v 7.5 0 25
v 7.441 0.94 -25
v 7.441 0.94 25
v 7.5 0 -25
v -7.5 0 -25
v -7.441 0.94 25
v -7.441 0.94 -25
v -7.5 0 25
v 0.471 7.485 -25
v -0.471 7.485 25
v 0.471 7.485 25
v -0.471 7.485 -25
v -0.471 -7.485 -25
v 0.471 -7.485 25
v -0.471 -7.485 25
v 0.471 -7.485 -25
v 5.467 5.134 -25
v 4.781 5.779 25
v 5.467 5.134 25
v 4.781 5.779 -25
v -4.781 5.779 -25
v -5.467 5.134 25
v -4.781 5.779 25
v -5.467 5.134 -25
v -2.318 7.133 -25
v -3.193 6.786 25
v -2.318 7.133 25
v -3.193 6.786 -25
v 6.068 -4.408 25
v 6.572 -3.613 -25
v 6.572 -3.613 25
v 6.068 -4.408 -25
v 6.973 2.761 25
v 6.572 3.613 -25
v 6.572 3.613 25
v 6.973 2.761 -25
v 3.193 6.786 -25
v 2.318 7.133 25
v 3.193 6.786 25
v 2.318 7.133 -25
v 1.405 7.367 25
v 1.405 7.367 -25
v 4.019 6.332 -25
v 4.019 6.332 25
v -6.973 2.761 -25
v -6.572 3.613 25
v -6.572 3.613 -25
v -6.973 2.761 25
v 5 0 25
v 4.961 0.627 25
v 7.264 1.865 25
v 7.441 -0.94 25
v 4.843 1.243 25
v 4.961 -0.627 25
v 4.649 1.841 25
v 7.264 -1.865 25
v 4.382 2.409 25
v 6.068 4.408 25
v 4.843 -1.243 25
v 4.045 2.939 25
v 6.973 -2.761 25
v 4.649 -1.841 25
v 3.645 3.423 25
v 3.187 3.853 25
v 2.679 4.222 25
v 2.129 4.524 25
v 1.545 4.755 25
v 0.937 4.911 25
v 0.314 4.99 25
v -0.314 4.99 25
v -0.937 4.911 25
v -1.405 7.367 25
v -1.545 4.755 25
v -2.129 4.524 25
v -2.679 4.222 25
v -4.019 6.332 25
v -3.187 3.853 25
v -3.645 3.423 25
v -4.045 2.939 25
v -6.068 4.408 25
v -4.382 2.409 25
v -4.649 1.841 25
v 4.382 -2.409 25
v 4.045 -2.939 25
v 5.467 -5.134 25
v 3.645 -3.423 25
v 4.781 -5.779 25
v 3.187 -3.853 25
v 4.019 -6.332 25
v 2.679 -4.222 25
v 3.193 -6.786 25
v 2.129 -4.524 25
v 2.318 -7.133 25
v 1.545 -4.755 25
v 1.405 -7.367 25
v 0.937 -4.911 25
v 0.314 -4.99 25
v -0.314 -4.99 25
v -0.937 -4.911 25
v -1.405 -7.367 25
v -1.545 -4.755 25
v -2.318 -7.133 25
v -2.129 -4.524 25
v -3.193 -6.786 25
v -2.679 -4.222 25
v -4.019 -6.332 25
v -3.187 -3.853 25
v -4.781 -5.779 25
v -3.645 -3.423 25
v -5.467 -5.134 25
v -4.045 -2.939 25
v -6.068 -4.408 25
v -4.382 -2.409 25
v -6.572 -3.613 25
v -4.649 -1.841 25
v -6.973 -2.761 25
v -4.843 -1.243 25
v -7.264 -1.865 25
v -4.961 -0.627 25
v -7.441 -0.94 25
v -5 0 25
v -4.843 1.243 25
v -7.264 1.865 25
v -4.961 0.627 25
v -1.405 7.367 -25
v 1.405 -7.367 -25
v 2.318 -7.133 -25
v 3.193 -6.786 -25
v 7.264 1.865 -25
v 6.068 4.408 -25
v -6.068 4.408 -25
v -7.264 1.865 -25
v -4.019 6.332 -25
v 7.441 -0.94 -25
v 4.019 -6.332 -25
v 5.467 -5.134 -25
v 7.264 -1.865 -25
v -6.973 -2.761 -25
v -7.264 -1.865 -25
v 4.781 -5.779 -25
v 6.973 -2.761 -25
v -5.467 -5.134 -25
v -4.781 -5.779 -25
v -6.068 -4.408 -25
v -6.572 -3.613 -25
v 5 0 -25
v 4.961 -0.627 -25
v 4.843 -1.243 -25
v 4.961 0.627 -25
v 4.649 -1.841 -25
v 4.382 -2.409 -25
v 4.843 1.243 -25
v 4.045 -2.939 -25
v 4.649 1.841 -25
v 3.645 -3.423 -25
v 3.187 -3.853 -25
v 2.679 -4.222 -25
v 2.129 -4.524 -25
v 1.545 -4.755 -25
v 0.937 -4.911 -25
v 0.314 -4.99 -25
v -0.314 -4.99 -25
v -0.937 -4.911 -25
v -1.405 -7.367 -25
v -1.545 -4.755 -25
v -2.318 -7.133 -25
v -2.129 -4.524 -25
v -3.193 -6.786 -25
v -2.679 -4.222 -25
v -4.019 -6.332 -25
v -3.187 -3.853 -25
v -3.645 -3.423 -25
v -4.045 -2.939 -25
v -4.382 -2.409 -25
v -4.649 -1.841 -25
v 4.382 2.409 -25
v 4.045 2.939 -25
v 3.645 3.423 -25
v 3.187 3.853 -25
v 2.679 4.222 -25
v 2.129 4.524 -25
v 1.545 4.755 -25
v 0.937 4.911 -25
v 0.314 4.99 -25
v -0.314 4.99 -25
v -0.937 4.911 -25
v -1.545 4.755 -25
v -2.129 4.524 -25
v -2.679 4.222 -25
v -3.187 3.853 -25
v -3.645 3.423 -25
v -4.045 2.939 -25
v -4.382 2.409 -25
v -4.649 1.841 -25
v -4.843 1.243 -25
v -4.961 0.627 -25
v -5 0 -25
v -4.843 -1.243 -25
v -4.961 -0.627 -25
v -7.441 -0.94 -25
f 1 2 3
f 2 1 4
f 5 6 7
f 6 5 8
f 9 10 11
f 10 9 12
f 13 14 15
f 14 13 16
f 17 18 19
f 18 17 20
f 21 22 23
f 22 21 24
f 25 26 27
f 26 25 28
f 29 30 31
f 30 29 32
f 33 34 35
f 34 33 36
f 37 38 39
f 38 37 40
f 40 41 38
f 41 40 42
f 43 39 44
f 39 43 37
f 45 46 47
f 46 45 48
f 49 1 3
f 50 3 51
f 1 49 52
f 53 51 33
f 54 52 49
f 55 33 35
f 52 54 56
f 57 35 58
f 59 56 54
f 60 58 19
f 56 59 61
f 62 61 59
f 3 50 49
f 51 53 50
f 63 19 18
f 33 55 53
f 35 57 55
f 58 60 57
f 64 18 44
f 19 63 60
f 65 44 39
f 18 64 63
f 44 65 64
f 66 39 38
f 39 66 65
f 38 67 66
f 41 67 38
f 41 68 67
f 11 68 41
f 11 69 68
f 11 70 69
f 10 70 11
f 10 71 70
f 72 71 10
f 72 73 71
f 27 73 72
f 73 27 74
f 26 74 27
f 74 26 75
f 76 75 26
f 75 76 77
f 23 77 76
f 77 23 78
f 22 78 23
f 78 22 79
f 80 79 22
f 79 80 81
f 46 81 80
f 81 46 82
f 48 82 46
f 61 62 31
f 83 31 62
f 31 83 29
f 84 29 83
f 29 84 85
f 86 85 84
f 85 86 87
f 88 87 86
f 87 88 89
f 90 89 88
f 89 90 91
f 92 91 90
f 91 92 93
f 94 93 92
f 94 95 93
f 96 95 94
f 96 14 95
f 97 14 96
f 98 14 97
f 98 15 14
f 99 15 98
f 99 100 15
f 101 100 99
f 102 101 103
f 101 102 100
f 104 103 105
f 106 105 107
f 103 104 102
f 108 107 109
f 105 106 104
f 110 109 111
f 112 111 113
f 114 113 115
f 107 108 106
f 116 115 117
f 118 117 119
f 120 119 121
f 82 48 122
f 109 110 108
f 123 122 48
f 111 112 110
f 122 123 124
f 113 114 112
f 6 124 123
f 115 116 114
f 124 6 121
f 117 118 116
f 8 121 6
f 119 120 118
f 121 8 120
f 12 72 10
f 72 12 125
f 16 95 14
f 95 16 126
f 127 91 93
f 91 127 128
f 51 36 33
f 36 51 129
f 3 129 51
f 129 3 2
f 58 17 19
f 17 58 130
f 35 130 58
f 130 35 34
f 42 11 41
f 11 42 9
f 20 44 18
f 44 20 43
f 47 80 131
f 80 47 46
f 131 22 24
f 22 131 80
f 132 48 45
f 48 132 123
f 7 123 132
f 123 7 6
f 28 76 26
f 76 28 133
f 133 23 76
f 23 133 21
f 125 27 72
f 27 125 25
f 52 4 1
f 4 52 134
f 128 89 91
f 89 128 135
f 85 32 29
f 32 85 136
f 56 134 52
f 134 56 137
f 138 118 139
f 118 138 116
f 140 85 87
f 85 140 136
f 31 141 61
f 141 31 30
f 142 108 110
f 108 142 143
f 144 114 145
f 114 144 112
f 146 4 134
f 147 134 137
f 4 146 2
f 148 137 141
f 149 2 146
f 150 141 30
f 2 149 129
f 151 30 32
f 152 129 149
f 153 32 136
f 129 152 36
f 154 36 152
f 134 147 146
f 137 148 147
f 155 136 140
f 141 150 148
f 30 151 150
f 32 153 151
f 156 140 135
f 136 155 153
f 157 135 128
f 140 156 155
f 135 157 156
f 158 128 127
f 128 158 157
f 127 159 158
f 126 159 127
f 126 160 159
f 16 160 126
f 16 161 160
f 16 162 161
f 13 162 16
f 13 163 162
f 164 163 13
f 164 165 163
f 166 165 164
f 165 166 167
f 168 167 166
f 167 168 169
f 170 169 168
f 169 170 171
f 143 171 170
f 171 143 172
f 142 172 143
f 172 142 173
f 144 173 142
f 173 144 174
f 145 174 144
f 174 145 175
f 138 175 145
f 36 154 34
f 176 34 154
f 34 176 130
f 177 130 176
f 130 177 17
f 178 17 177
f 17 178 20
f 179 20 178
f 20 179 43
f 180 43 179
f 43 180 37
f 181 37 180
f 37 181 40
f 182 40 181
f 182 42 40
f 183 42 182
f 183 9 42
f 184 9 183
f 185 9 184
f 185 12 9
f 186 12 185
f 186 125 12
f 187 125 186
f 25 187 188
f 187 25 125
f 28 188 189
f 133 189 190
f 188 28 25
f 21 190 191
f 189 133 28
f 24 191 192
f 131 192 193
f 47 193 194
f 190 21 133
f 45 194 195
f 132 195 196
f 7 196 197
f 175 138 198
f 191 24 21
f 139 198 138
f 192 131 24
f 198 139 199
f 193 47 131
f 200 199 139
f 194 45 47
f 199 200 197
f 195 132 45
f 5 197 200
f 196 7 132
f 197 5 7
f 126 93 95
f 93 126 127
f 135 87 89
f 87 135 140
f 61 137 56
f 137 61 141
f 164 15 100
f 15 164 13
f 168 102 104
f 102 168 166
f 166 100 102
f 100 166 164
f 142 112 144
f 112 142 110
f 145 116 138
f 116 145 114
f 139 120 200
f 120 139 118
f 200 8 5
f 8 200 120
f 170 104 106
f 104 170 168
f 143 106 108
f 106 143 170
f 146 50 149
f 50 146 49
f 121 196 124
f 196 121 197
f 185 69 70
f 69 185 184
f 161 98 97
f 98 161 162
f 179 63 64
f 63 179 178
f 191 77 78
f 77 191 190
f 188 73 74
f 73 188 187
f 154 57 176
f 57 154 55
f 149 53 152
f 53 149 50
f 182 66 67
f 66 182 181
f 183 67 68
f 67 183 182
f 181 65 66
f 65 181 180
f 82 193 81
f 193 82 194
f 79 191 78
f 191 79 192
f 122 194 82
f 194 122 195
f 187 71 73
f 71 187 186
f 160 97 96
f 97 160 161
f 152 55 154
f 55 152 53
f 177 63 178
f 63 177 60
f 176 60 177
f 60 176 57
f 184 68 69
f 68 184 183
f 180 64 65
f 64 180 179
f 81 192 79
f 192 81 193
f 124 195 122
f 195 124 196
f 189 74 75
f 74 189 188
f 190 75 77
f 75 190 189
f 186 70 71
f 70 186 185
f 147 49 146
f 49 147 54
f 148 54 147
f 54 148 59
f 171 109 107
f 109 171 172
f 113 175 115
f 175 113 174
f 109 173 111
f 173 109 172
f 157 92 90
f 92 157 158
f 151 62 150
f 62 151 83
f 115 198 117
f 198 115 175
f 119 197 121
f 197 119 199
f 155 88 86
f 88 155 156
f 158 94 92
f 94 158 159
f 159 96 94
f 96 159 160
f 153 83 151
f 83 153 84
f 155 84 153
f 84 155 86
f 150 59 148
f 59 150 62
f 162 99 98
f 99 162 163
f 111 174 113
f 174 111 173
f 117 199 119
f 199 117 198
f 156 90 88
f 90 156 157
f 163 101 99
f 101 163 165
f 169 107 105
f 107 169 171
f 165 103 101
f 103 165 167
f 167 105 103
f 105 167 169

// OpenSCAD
$fn = 50;


difference() {
	union() {
		translate(v = [0, 0, -25.0000000000]) {
			cylinder(h = 50, r = 7.5000000000);
		}
	}
	union() {
		translate(v = [0, 0, -100.0000000000]) {
			cylinder(h = 200, r = 5.0000000000);
		}
	}
}
